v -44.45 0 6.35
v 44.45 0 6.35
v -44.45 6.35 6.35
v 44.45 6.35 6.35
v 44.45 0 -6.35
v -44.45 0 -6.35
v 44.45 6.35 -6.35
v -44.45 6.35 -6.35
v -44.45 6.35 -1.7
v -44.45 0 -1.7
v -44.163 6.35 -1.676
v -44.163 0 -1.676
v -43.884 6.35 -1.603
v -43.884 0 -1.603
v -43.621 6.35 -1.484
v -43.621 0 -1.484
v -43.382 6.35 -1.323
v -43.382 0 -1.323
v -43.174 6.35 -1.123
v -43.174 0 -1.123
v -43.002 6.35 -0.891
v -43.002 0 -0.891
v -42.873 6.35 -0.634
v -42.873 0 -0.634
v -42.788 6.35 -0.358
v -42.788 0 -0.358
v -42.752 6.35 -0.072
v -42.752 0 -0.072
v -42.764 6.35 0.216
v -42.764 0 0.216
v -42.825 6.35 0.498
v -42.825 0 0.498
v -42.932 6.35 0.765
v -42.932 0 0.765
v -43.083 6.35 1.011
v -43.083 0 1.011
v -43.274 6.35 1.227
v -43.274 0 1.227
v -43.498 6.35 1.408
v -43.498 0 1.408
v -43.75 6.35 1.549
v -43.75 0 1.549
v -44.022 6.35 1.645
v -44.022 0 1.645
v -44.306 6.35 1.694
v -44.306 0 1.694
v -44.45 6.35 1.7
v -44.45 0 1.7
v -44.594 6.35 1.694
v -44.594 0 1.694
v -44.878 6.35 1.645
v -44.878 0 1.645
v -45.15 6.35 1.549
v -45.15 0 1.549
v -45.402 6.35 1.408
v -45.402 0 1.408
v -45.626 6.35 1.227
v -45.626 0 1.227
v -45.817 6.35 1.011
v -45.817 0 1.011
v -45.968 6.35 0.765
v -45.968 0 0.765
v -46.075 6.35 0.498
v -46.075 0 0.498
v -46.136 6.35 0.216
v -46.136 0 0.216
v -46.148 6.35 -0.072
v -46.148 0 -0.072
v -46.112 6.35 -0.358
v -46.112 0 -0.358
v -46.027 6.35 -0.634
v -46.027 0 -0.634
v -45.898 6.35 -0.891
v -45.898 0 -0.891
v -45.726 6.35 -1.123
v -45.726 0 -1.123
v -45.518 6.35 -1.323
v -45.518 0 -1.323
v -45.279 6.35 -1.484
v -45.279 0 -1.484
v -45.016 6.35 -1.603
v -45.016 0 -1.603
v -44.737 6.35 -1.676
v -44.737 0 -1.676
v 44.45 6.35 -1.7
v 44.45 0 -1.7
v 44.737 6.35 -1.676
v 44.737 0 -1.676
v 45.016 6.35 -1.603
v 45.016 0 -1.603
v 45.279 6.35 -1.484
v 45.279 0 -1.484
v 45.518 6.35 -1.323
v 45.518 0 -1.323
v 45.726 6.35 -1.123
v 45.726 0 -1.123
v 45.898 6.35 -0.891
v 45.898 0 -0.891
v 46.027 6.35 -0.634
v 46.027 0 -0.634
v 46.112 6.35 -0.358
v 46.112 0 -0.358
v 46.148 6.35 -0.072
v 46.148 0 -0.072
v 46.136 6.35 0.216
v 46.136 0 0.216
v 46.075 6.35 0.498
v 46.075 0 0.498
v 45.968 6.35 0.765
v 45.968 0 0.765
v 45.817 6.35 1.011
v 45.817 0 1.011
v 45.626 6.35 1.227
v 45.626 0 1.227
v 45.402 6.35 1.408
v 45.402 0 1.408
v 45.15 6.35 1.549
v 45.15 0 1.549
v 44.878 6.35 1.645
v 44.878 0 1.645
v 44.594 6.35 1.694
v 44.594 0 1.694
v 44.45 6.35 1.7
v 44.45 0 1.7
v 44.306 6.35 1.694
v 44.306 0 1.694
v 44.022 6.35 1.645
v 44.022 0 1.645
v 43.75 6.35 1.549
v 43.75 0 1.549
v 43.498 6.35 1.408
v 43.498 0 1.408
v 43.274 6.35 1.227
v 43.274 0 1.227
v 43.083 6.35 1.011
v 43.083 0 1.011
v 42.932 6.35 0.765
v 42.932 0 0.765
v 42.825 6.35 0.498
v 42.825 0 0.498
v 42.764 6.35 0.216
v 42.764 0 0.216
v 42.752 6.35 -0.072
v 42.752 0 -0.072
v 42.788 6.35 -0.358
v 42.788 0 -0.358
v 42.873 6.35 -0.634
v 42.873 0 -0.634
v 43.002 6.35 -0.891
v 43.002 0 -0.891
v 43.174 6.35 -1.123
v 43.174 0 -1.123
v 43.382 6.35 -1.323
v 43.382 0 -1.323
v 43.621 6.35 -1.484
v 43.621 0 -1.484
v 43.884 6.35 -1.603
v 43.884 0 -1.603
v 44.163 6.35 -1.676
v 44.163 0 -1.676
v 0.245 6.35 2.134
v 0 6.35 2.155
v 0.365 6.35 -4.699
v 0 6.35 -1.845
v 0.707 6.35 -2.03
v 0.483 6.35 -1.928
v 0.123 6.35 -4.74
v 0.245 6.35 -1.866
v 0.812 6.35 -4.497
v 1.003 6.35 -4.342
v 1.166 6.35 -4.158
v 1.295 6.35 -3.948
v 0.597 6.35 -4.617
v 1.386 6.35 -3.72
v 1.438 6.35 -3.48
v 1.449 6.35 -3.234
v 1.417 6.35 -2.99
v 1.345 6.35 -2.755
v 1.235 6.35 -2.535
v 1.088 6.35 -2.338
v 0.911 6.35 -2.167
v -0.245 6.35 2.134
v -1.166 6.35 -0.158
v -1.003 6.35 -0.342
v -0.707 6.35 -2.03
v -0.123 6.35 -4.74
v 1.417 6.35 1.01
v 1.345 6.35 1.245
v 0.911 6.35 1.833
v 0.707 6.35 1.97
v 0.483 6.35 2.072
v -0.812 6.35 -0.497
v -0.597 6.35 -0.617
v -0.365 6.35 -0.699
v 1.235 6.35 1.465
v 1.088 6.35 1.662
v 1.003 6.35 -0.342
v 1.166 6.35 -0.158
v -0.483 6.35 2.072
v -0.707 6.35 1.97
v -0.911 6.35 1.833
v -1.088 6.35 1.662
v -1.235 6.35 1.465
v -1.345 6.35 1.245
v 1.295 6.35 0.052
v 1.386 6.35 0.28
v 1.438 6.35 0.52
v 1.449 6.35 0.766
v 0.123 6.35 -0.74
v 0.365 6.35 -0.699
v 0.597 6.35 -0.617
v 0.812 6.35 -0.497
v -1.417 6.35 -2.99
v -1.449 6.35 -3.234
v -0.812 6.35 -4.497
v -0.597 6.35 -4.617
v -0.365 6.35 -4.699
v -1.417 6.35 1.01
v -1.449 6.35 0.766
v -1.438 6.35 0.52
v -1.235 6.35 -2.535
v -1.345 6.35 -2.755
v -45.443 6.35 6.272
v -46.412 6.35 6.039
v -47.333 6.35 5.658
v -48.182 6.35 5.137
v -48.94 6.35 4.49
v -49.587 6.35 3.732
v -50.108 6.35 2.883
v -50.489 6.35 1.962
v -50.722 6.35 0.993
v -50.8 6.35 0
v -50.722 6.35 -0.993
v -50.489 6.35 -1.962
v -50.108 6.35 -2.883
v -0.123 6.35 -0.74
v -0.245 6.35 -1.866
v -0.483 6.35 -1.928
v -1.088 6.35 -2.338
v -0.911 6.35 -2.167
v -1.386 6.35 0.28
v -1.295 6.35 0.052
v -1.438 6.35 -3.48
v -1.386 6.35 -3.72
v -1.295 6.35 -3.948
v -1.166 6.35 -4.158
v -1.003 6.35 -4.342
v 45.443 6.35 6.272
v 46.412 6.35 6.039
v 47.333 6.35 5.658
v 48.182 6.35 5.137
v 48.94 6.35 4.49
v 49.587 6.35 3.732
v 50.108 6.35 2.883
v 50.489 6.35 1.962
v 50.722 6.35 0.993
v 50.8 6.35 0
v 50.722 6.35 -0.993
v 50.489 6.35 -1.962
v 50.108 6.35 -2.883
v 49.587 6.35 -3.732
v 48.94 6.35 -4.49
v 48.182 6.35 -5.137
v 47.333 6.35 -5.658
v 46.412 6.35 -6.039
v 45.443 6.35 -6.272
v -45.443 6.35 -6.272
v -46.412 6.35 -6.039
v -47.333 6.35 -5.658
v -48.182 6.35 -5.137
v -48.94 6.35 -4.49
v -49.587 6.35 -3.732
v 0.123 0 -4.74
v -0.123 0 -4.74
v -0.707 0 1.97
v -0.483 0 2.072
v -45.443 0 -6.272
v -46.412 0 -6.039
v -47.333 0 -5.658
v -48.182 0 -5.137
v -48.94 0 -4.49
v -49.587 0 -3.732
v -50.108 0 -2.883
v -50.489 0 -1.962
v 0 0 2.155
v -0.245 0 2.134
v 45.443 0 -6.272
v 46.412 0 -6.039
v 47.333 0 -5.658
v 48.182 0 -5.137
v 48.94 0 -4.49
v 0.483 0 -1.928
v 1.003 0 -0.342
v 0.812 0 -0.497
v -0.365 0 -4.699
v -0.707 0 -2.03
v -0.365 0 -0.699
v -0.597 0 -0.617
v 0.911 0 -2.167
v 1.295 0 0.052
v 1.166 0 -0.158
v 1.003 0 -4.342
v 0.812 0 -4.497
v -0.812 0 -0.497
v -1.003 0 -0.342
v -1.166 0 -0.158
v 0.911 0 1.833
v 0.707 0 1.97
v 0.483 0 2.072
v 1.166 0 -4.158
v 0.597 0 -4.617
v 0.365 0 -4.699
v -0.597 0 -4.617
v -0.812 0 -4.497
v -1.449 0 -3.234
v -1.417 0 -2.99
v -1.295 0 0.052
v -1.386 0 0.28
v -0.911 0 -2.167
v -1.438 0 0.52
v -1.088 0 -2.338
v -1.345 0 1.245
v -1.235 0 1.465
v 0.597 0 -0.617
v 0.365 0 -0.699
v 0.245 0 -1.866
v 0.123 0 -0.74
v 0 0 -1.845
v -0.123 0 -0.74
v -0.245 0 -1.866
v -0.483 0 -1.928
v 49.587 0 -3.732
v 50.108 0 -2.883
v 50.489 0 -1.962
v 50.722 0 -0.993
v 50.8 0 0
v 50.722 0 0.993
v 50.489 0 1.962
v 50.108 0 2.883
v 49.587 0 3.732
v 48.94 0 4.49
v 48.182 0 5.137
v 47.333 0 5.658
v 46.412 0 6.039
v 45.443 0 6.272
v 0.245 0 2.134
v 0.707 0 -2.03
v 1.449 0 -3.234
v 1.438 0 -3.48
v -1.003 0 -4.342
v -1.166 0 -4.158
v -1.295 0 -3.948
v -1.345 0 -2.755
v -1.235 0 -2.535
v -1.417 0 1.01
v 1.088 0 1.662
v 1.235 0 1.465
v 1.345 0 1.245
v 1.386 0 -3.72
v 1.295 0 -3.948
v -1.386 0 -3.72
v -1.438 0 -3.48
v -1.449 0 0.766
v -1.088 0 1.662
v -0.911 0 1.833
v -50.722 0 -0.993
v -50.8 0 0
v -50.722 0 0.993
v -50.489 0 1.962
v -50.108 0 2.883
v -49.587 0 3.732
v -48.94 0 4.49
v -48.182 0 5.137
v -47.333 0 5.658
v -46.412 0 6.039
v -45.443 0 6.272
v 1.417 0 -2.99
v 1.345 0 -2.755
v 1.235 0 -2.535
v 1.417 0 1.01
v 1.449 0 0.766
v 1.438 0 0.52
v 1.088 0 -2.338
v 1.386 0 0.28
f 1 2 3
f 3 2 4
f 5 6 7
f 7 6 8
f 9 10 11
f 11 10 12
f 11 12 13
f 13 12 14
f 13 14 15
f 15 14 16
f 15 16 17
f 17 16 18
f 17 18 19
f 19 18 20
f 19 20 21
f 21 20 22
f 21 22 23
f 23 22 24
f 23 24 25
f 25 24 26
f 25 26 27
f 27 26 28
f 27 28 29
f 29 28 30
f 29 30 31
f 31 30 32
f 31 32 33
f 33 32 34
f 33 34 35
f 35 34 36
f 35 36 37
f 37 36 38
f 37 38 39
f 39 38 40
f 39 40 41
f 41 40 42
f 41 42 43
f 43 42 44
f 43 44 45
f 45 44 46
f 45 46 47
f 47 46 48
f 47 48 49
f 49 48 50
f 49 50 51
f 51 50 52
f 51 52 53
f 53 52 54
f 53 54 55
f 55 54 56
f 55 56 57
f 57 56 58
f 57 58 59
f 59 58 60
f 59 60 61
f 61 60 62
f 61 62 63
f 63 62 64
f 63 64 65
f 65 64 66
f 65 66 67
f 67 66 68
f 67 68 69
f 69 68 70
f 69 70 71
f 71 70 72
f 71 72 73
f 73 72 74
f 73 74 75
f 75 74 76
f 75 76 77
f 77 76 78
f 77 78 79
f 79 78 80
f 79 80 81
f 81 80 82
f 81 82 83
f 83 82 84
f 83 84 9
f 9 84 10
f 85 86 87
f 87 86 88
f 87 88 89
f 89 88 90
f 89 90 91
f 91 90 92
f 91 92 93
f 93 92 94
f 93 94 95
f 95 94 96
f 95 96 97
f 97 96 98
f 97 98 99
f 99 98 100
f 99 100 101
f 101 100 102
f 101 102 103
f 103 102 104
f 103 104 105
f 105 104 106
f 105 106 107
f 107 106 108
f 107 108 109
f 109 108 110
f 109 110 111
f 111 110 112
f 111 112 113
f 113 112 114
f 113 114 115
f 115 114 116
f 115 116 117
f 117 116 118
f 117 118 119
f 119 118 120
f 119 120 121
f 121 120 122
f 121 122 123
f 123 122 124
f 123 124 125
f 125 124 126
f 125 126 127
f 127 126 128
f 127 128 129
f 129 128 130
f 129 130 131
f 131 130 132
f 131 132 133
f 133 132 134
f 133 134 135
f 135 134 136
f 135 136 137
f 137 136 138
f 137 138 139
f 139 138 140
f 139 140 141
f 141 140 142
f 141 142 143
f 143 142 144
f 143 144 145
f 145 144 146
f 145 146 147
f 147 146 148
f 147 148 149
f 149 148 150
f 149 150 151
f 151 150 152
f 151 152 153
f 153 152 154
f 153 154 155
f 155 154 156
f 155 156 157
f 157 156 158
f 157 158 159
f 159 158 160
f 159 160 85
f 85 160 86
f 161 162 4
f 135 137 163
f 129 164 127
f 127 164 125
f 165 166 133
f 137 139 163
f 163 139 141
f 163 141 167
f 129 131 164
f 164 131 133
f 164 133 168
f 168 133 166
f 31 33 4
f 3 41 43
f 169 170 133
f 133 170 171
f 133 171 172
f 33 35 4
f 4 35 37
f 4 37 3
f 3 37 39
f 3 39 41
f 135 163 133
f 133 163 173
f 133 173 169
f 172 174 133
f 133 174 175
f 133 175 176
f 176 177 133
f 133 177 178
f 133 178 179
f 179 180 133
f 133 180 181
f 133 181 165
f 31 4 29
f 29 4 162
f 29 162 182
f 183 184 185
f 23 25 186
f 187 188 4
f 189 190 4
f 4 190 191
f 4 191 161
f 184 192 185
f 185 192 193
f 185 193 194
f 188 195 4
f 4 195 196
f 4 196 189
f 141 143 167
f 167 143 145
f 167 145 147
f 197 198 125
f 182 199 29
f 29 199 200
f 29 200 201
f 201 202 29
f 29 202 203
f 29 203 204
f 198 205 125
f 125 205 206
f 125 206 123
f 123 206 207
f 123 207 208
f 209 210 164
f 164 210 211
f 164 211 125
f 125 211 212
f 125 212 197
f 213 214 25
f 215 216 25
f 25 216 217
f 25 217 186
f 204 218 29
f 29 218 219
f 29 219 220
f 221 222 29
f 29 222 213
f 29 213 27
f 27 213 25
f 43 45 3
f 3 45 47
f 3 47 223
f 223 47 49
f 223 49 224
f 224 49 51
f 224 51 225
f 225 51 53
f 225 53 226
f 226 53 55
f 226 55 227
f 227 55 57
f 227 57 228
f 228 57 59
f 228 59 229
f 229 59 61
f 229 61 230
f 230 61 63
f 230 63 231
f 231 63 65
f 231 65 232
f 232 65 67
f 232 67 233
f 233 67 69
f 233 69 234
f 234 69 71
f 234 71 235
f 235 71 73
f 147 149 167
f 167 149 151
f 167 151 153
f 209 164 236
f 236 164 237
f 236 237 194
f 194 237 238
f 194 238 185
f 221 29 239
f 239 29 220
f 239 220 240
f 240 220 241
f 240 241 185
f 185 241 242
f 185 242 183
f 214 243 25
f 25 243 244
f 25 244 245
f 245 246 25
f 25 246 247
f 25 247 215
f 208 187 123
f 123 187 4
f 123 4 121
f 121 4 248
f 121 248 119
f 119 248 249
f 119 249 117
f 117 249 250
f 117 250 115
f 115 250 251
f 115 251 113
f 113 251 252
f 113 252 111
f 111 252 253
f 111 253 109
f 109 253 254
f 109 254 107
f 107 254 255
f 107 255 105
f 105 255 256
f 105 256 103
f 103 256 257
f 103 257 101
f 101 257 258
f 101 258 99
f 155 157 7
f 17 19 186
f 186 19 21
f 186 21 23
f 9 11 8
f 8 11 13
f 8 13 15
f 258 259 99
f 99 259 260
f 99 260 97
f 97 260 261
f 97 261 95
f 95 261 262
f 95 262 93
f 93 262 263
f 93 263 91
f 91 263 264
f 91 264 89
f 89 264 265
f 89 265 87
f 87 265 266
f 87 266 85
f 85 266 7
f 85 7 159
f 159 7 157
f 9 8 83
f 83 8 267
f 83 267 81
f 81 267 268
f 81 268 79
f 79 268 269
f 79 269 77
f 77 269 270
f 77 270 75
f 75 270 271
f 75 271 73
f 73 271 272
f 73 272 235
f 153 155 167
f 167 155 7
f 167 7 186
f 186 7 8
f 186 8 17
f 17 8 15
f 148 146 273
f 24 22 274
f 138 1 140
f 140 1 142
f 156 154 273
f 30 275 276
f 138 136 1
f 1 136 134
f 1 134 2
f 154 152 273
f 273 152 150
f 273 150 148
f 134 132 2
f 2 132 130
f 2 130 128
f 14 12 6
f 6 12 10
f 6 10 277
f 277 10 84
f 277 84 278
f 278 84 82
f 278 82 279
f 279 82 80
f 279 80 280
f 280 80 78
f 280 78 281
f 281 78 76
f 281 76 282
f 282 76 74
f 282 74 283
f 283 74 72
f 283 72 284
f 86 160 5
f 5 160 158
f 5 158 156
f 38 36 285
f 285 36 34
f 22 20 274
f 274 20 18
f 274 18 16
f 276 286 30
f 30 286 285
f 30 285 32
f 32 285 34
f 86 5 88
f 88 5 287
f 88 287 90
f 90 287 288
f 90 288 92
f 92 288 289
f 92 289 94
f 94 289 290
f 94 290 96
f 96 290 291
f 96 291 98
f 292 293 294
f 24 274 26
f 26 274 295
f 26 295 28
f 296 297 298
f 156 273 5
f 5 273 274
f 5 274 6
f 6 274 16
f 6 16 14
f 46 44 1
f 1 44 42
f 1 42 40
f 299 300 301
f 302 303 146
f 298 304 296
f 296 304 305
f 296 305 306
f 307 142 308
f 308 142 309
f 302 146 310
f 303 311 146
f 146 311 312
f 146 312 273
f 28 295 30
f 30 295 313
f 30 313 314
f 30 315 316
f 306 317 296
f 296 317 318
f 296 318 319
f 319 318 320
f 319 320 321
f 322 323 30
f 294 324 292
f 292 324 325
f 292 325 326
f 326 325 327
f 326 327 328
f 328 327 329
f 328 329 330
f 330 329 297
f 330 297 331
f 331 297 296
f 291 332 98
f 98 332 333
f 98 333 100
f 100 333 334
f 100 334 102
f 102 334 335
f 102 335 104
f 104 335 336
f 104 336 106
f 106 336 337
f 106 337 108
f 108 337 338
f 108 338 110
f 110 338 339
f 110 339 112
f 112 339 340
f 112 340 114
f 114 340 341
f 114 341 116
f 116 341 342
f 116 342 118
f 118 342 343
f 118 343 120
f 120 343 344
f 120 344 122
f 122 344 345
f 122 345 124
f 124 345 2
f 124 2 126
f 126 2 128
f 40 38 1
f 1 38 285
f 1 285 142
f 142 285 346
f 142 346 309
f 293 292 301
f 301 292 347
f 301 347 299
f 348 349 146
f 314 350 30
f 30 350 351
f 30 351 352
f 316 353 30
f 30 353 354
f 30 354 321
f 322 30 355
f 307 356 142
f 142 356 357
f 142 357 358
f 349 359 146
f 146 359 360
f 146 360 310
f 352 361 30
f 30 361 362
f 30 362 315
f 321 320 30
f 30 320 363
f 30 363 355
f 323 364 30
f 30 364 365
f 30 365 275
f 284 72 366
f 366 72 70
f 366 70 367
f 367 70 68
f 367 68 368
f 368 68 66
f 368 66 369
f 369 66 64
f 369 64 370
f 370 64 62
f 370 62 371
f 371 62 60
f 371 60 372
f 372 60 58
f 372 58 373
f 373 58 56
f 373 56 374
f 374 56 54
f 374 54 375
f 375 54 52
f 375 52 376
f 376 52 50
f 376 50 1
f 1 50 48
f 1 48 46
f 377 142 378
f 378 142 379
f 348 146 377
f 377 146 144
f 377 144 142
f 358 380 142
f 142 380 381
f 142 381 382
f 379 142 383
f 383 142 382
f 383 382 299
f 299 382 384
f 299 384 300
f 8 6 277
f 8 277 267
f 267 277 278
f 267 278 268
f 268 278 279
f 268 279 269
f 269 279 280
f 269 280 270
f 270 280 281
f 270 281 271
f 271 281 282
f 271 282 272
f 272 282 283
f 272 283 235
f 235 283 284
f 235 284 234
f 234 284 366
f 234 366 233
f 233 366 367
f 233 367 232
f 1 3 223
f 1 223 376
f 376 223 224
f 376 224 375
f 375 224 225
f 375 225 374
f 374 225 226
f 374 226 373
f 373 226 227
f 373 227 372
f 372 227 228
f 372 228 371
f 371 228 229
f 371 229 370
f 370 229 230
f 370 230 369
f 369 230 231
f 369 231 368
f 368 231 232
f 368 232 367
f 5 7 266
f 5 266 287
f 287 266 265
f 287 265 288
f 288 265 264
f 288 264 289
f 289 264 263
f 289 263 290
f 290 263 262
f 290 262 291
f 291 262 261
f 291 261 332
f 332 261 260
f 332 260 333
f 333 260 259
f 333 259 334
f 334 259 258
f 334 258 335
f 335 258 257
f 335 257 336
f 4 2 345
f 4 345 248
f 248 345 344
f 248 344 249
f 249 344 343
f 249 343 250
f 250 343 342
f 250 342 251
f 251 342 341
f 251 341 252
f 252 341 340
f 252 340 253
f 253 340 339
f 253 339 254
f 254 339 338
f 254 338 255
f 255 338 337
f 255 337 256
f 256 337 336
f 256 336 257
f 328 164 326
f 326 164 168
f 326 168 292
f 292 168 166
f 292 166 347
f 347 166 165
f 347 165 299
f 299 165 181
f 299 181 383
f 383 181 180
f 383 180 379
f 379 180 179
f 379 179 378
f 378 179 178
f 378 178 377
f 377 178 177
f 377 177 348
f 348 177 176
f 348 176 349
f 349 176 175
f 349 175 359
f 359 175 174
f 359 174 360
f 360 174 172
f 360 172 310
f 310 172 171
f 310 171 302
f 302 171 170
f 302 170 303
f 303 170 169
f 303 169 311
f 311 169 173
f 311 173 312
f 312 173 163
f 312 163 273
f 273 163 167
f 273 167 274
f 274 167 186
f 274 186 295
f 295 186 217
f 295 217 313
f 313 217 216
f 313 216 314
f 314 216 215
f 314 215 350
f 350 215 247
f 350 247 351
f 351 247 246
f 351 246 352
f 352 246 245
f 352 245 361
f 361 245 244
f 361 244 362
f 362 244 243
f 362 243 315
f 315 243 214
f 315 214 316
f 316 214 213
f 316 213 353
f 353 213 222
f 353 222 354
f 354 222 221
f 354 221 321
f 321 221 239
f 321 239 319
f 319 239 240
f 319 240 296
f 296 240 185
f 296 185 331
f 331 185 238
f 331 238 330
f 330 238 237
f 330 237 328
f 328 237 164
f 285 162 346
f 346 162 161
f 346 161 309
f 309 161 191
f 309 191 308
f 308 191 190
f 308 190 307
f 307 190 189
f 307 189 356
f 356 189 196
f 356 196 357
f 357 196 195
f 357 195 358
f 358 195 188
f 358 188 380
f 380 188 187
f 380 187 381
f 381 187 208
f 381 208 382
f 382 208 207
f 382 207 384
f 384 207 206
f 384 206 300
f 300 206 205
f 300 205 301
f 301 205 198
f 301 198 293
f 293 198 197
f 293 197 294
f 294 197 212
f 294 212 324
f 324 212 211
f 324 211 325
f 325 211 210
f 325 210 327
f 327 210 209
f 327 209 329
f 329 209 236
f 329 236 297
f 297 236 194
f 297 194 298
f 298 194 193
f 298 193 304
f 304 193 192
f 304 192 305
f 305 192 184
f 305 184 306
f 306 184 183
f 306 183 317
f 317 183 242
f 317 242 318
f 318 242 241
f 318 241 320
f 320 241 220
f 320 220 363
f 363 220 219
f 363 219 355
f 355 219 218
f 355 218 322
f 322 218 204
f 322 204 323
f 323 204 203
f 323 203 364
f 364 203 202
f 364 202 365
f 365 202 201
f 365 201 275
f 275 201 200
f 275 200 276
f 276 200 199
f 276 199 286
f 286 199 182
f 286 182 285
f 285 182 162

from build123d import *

# Parameters (mm, degrees)
SKETCH1_R               = 1.7
BOSS_EXTRUDE1_DEPTH     = 6.35
FILLET1_R               = 6.35
CUT_EXTRUDE1_DEPTH      = 52.587643869
CUT_EXTRUDE1_DEPTH_BACK = 52.587643869
SKETCH3_R               = 1.45


with BuildPart() as part:
    # Sketch1 → Boss-Extrude1 (new body)
    with BuildSketch(Plane(origin=(0, 0, 0), x_dir=(1, 0, 0), z_dir=(0, 1, 0))):
        Polygon((-50.8, 6.35), (-50.8, -6.35), (-6.35, -6.35), (6.35, -6.35), (50.8, -6.35), (50.8, 6.35), (6.35, 6.35), (-6.35, 6.35), align=None)
        with Locations(Location((-44.45, 0, 0), (0, 0, 270))):
            Circle(SKETCH1_R, mode=Mode.SUBTRACT)
        with Locations(Location((44.45, 0, 0), (0, 0, 270))):
            Circle(SKETCH1_R, mode=Mode.SUBTRACT)
    extrude(amount=BOSS_EXTRUDE1_DEPTH)

    # Fillet1
    fillet1_edges = [part.edges().sort_by_distance(p)[0] for p in [
        (50.8, 3.175, -6.35),
        (-50.8, 3.175, -6.35),
        (-50.8, 3.175, 6.35),
        (50.8, 3.175, 6.35),
    ]]
    fillet(fillet1_edges, radius=FILLET1_R - 0.0001)  # a hair under: the kernel refuses the full size

    # Sketch3 → Cut-Extrude1 (cut, two sides: drawn at the far end of the back side and taken through both)
    with BuildSketch(Plane(origin=(0, 6.35, 0), x_dir=(1, 0, 0), z_dir=(0, 1, 0)).offset(-CUT_EXTRUDE1_DEPTH_BACK)):
        with Locations(Location((0, -0.704506674, 0), (0, 0, 270))):
            Circle(SKETCH3_R)
        with Locations(Location((0, 3.295493326, 0), (0, 0, 270))):
            Circle(SKETCH3_R)
    extrude(amount=CUT_EXTRUDE1_DEPTH + CUT_EXTRUDE1_DEPTH_BACK, mode=Mode.SUBTRACT)


solid = part.part
